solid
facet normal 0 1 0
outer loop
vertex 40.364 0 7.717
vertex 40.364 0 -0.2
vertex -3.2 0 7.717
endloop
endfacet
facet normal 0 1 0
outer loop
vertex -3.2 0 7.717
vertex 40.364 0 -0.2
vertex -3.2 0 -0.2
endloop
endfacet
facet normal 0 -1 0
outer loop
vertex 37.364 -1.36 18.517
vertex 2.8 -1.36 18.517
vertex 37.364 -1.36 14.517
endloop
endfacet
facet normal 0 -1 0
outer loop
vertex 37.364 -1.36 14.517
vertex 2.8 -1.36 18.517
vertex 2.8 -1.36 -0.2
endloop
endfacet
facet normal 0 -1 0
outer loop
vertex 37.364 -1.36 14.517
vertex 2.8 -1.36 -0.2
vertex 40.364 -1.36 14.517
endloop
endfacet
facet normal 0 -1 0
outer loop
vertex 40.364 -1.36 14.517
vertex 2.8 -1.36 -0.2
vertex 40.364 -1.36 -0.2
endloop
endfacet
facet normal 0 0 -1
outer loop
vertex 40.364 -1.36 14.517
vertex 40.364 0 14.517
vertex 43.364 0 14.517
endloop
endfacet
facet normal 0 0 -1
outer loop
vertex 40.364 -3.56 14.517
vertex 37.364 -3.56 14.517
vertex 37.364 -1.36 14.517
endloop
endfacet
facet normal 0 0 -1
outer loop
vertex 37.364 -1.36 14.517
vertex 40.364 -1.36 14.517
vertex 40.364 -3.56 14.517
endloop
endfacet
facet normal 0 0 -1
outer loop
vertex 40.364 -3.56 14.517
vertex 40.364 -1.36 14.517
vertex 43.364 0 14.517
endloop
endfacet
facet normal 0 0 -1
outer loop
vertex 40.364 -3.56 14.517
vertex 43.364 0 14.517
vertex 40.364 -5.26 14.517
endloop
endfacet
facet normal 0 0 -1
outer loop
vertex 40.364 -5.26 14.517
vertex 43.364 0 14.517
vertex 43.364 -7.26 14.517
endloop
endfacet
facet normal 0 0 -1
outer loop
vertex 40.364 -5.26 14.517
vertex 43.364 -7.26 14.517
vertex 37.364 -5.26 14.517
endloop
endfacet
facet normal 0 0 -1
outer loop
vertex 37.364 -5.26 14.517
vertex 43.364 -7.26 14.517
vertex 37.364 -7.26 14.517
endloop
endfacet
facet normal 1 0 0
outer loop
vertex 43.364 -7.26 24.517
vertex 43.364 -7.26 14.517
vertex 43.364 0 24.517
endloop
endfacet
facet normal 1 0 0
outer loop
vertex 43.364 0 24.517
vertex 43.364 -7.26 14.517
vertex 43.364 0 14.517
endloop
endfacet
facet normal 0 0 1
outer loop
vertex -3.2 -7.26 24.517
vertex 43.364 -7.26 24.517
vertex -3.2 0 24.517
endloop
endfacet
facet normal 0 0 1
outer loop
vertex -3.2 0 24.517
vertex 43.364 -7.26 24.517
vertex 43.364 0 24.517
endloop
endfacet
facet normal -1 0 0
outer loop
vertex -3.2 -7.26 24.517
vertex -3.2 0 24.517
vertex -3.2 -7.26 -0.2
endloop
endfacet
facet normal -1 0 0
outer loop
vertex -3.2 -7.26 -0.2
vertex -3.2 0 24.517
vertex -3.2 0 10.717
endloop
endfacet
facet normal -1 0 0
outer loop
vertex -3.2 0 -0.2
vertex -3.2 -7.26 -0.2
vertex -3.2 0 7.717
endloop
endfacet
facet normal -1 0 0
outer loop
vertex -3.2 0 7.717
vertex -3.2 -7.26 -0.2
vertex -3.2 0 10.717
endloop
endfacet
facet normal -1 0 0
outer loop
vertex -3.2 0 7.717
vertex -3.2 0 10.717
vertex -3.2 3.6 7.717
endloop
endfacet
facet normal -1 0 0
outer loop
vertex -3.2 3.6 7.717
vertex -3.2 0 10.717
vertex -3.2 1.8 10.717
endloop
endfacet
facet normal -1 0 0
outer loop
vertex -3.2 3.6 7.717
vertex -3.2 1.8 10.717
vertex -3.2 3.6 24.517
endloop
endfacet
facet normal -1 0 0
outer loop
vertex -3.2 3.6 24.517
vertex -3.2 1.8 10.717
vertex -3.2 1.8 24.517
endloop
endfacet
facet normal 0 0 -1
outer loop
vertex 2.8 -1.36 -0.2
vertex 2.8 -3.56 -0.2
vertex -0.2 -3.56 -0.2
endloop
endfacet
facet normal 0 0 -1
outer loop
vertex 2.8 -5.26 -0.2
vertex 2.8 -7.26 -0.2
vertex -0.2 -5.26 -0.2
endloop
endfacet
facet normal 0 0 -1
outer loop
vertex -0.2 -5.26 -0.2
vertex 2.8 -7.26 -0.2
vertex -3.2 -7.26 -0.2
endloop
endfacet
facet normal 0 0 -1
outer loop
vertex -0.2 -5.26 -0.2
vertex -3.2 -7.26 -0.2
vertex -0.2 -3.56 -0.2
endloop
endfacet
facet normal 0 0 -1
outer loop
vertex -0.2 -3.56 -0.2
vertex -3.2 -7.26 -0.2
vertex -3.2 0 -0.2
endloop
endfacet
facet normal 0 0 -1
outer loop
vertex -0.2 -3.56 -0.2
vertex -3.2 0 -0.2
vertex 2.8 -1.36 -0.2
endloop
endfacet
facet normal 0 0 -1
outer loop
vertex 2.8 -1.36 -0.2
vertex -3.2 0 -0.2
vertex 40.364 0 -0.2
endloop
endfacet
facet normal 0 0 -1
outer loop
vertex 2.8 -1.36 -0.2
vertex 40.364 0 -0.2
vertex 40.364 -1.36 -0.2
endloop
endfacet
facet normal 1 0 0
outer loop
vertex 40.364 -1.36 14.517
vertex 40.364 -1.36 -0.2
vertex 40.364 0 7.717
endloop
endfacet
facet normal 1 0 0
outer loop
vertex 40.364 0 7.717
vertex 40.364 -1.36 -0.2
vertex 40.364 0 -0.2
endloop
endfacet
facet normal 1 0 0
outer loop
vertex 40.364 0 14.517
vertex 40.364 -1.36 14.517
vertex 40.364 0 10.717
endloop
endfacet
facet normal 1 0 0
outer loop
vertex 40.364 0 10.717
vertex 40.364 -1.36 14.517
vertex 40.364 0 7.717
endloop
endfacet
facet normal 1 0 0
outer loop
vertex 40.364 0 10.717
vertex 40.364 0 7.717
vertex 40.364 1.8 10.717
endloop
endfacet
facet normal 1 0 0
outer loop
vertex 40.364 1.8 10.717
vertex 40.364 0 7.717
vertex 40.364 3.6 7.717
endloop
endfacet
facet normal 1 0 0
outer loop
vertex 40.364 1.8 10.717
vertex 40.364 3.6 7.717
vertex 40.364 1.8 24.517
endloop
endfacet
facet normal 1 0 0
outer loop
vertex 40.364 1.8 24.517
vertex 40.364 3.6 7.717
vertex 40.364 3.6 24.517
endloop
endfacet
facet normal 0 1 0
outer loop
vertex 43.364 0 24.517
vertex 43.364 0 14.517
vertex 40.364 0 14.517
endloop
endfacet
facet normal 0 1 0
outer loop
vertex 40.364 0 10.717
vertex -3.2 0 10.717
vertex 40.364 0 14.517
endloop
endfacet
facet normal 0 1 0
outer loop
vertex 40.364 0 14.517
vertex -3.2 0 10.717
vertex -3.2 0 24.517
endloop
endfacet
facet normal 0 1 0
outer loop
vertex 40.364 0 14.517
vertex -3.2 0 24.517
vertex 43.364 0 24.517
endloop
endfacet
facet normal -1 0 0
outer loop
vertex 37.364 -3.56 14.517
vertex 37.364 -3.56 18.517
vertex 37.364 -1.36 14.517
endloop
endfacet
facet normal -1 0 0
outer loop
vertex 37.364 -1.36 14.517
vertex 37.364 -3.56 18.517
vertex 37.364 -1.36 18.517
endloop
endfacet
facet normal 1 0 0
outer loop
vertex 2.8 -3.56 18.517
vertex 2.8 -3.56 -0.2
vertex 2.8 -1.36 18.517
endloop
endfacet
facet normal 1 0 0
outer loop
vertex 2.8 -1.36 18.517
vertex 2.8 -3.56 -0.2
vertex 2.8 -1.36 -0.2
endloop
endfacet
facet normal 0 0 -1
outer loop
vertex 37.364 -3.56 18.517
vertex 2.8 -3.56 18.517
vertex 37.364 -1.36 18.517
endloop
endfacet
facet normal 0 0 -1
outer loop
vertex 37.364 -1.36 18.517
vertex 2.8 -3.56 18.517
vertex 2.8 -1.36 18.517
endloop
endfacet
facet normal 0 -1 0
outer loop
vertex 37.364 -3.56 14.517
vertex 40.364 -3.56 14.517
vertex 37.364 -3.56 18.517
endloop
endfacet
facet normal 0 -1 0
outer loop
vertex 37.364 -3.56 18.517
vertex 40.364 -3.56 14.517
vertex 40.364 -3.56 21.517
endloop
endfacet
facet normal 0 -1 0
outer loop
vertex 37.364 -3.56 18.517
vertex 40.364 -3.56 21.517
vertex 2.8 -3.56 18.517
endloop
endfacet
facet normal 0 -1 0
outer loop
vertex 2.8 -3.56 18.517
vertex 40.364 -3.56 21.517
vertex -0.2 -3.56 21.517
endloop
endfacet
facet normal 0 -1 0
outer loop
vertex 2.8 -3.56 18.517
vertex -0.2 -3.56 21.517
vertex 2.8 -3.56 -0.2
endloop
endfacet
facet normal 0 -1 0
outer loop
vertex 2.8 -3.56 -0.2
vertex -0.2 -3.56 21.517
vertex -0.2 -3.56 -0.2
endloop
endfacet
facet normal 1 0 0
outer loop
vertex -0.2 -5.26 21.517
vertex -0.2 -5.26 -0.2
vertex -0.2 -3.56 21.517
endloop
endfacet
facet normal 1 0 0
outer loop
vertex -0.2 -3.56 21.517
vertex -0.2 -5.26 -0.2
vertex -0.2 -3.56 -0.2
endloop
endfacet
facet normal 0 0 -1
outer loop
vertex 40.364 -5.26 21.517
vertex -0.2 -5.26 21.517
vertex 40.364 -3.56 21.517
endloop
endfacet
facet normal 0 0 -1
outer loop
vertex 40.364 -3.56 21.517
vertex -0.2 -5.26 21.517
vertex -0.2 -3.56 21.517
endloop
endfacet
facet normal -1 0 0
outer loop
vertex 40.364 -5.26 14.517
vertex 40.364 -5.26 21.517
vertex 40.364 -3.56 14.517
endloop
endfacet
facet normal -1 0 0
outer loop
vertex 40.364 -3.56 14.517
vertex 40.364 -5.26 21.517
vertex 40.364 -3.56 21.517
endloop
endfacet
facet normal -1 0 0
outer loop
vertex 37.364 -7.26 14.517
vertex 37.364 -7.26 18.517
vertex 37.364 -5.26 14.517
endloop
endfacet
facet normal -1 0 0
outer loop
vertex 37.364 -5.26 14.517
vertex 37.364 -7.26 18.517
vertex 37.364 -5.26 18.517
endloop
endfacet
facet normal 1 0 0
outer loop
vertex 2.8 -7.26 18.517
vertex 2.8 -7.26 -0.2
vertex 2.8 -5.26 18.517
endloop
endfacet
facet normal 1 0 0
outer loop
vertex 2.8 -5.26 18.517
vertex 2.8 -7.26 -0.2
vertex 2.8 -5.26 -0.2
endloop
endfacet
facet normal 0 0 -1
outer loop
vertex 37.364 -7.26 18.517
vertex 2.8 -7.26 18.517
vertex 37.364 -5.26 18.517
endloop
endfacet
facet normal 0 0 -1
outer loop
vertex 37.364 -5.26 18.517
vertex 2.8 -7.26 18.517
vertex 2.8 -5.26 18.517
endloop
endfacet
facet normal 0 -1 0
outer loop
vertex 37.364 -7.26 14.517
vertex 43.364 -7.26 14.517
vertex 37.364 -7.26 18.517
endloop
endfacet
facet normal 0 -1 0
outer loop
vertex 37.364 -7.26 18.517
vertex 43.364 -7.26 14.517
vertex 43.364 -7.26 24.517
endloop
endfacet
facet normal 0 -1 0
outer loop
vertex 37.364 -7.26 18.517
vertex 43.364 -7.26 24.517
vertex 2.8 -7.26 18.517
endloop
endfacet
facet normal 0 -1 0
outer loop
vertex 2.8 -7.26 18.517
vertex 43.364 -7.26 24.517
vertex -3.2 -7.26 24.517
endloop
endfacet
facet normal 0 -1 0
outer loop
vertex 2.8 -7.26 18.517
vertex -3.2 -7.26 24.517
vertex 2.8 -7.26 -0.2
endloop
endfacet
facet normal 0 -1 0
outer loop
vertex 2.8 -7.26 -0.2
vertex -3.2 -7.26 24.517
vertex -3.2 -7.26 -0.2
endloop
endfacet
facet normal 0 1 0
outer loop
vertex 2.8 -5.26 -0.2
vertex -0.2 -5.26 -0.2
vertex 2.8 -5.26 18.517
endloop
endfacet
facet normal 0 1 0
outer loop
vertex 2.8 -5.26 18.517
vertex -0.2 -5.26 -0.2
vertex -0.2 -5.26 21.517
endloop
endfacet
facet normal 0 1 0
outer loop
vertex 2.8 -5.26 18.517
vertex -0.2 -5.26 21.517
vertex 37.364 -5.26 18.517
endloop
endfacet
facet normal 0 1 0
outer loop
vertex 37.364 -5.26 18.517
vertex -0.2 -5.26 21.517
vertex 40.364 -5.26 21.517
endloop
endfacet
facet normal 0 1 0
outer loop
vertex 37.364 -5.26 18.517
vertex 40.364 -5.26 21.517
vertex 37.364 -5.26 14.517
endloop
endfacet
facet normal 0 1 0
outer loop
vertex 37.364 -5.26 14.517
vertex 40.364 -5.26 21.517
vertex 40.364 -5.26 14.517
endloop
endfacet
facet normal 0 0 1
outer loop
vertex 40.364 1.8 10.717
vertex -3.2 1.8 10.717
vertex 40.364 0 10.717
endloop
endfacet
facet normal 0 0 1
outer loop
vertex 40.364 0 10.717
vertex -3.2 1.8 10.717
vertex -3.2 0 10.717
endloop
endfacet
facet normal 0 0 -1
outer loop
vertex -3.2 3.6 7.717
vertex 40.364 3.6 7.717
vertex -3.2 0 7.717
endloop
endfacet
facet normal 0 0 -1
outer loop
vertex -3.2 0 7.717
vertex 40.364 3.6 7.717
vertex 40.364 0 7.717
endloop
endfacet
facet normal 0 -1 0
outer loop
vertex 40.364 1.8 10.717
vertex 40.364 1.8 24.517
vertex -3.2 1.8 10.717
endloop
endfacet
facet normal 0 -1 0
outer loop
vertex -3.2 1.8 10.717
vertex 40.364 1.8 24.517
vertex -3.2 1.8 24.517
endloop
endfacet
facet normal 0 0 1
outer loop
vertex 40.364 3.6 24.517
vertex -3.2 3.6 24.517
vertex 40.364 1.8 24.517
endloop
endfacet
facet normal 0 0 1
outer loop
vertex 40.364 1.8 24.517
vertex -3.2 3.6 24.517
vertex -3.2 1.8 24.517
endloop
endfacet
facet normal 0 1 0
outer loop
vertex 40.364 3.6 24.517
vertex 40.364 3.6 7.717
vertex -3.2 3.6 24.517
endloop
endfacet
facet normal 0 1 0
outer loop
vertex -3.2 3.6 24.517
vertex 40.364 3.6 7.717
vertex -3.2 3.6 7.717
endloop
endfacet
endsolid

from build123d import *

# Parameters (mm, degrees)
SKETCH1_W           = 3
SKETCH1_H           = 21.71695
SKETCH1_W_2         = 2.8
SKETCH1_H_2         = 4
SKETCH1_W_3         = 0.2
BOSS_EXTRUDE3_DEPTH = 1.36
BOSS_EXTRUDE4_START = -1.36
SKETCH1_7_W         = 3
SKETCH1_7_H         = 21.71695
SKETCH1_7_W_2       = 2.8
SKETCH1_7_H_2       = 4
SKETCH1_7_W_3       = 0.2
BOSS_EXTRUDE4_DEPTH = 2.2
BOSS_EXTRUDE5_START = -3.56
SKETCH1_8_W         = 3
SKETCH1_8_H         = 21.71695
BOSS_EXTRUDE5_DEPTH = 1.7
BOSS_EXTRUDE6_START = -5.26
SKETCH1_9_W         = 3
SKETCH1_9_H         = 21.71695
SKETCH1_9_W_2       = 2.8
SKETCH1_9_H_2       = 4
SKETCH1_9_W_3       = 0.2
BOSS_EXTRUDE6_DEPTH = 2
SKETCH2_W           = 43.56375
SKETCH2_H           = 3
BOSS_EXTRUDE7_DEPTH = 1.8
BOSS_EXTRUDE8_START = 1.8
SKETCH2_3_W         = 43.56375
SKETCH2_3_H         = 3
BOSS_EXTRUDE8_DEPTH = 1.8


with BuildPart() as part:
    # Sketch1 → Boss-Extrude3 (new body)
    with BuildSketch(Plane(origin=(0, 0, 0), x_dir=(1, 0, 0), z_dir=(0, 1, 0))):
        Polygon((2.8, -21.51695), (-0.2, -21.51695), (-3.2, -21.51695), (-3.2, -24.51695), (40.36375, -24.51695), (40.36375, -21.51695), align=None)
        with Locations((-1.7, -10.658475)):
            Rectangle(SKETCH1_W, SKETCH1_H)
        Polygon((0, 0), (0, -21.31695), (2.8, -21.31695), (2.8, -18.51695), (2.8, 0), align=None)
        Polygon((40.16375, 0), (2.8, 0), (2.8, -18.51695), (37.36375, -18.51695), (37.36375, -14.51695), (40.16375, -14.51695), align=None)
        Polygon((2.8, -18.51695), (2.8, -21.31695), (40.16375, -21.31695), (40.16375, -18.51695), (37.36375, -18.51695), align=None)
        with Locations((38.76375, -16.51695)):
            Rectangle(SKETCH1_W_2, SKETCH1_H_2)
        Polygon((43.36375, -14.51695), (40.36375, -14.51695), (40.36375, -18.51695), (40.36375, -21.51695), (40.36375, -24.51695), (43.36375, -24.51695), align=None)
        Polygon((2.8, -21.31695), (2.8, -21.51695), (40.36375, -21.51695), (40.36375, -18.51695), (40.16375, -18.51695), (40.16375, -21.31695), align=None)
        Polygon((40.36375, 0.2), (2.8, 0.2), (2.8, 0), (40.16375, 0), (40.16375, -14.51695), (40.36375, -14.51695), align=None)
        with Locations((40.26375, -16.51695)):
            Rectangle(SKETCH1_W_3, SKETCH1_H_2)
        Polygon((0, -21.31695), (-0.2, -21.31695), (-0.2, -21.51695), (2.8, -21.51695), (2.8, -21.31695), align=None)
        Polygon((2.8, 0.2), (-0.2, 0.2), (-0.2, -21.31695), (0, -21.31695), (0, 0), (2.8, 0), align=None)
    extrude(amount=-BOSS_EXTRUDE3_DEPTH)

    # Sketch1<7> → Boss-Extrude4 (add)
    with BuildSketch(Plane(origin=(0, 0, 0), x_dir=(1, 0, 0), z_dir=(0, 1, 0)).offset(BOSS_EXTRUDE4_START)):
        Polygon((0, 0), (0, -21.31695), (2.8, -21.31695), (2.8, -18.51695), (2.8, 0), align=None)
        with Locations((-1.7, -10.658475)):
            Rectangle(SKETCH1_7_W, SKETCH1_7_H)
        Polygon((2.8, 0.2), (-0.2, 0.2), (-0.2, -21.31695), (0, -21.31695), (0, 0), (2.8, 0), align=None)
        Polygon((0, -21.31695), (-0.2, -21.31695), (-0.2, -21.51695), (2.8, -21.51695), (2.8, -21.31695), align=None)
        Polygon((2.8, -21.51695), (-0.2, -21.51695), (-3.2, -21.51695), (-3.2, -24.51695), (40.36375, -24.51695), (40.36375, -21.51695), align=None)
        Polygon((2.8, -21.31695), (2.8, -21.51695), (40.36375, -21.51695), (40.36375, -18.51695), (40.16375, -18.51695), (40.16375, -21.31695), align=None)
        Polygon((2.8, -18.51695), (2.8, -21.31695), (40.16375, -21.31695), (40.16375, -18.51695), (37.36375, -18.51695), align=None)
        with Locations((38.76375, -16.51695)):
            Rectangle(SKETCH1_7_W_2, SKETCH1_7_H_2)
        Polygon((43.36375, -14.51695), (40.36375, -14.51695), (40.36375, -18.51695), (40.36375, -21.51695), (40.36375, -24.51695), (43.36375, -24.51695), align=None)
        with Locations((40.26375, -16.51695)):
            Rectangle(SKETCH1_7_W_3, SKETCH1_7_H_2)
    extrude(amount=-BOSS_EXTRUDE4_DEPTH)

    # Sketch1<8> → Boss-Extrude5 (add)
    with BuildSketch(Plane(origin=(0, 0, 0), x_dir=(1, 0, 0), z_dir=(0, 1, 0)).offset(BOSS_EXTRUDE5_START)):
        with Locations((-1.7, -10.658475)):
            Rectangle(SKETCH1_8_W, SKETCH1_8_H)
        Polygon((2.8, -21.51695), (-0.2, -21.51695), (-3.2, -21.51695), (-3.2, -24.51695), (40.36375, -24.51695), (40.36375, -21.51695), align=None)
        Polygon((43.36375, -14.51695), (40.36375, -14.51695), (40.36375, -18.51695), (40.36375, -21.51695), (40.36375, -24.51695), (43.36375, -24.51695), align=None)
    extrude(amount=-BOSS_EXTRUDE5_DEPTH)

    # Sketch1<9> → Boss-Extrude6 (add)
    with BuildSketch(Plane(origin=(0, 0, 0), x_dir=(1, 0, 0), z_dir=(0, 1, 0)).offset(BOSS_EXTRUDE6_START)):
        with Locations((-1.7, -10.658475)):
            Rectangle(SKETCH1_9_W, SKETCH1_9_H)
        Polygon((0, 0), (0, -21.31695), (2.8, -21.31695), (2.8, -18.51695), (2.8, 0), align=None)
        Polygon((2.8, -21.51695), (-0.2, -21.51695), (-3.2, -21.51695), (-3.2, -24.51695), (40.36375, -24.51695), (40.36375, -21.51695), align=None)
        Polygon((2.8, -18.51695), (2.8, -21.31695), (40.16375, -21.31695), (40.16375, -18.51695), (37.36375, -18.51695), align=None)
        Polygon((43.36375, -14.51695), (40.36375, -14.51695), (40.36375, -18.51695), (40.36375, -21.51695), (40.36375, -24.51695), (43.36375, -24.51695), align=None)
        with Locations((38.76375, -16.51695)):
            Rectangle(SKETCH1_9_W_2, SKETCH1_9_H_2)
        Polygon((2.8, -21.31695), (2.8, -21.51695), (40.36375, -21.51695), (40.36375, -18.51695), (40.16375, -18.51695), (40.16375, -21.31695), align=None)
        with Locations((40.26375, -16.51695)):
            Rectangle(SKETCH1_9_W_3, SKETCH1_9_H_2)
        Polygon((0, -21.31695), (-0.2, -21.31695), (-0.2, -21.51695), (2.8, -21.51695), (2.8, -21.31695), align=None)
        Polygon((2.8, 0.2), (-0.2, 0.2), (-0.2, -21.31695), (0, -21.31695), (0, 0), (2.8, 0), align=None)
    extrude(amount=-BOSS_EXTRUDE6_DEPTH)

    # Sketch2 → Boss-Extrude7 (add)
    with BuildSketch(Plane(origin=(0, 0, 0), x_dir=(1, 0, 0), z_dir=(0, 1, 0))):
        with Locations((18.581875, -9.21695)):
            Rectangle(SKETCH2_W, SKETCH2_H)
    extrude(amount=BOSS_EXTRUDE7_DEPTH)

    # Sketch2<3> → Boss-Extrude8 (add)
    with BuildSketch(Plane(origin=(0, 0, 0), x_dir=(1, 0, 0), z_dir=(0, 1, 0)).offset(BOSS_EXTRUDE8_START)):
        Polygon((40.36375, -10.71695), (-3.2, -10.71695), (-3.2, -24.51695), (40.36375, -24.51695), (40.36375, -14.51695), align=None)
        with Locations((18.581875, -9.21695)):
            Rectangle(SKETCH2_3_W, SKETCH2_3_H)
    extrude(amount=BOSS_EXTRUDE8_DEPTH)


solid = part.part
